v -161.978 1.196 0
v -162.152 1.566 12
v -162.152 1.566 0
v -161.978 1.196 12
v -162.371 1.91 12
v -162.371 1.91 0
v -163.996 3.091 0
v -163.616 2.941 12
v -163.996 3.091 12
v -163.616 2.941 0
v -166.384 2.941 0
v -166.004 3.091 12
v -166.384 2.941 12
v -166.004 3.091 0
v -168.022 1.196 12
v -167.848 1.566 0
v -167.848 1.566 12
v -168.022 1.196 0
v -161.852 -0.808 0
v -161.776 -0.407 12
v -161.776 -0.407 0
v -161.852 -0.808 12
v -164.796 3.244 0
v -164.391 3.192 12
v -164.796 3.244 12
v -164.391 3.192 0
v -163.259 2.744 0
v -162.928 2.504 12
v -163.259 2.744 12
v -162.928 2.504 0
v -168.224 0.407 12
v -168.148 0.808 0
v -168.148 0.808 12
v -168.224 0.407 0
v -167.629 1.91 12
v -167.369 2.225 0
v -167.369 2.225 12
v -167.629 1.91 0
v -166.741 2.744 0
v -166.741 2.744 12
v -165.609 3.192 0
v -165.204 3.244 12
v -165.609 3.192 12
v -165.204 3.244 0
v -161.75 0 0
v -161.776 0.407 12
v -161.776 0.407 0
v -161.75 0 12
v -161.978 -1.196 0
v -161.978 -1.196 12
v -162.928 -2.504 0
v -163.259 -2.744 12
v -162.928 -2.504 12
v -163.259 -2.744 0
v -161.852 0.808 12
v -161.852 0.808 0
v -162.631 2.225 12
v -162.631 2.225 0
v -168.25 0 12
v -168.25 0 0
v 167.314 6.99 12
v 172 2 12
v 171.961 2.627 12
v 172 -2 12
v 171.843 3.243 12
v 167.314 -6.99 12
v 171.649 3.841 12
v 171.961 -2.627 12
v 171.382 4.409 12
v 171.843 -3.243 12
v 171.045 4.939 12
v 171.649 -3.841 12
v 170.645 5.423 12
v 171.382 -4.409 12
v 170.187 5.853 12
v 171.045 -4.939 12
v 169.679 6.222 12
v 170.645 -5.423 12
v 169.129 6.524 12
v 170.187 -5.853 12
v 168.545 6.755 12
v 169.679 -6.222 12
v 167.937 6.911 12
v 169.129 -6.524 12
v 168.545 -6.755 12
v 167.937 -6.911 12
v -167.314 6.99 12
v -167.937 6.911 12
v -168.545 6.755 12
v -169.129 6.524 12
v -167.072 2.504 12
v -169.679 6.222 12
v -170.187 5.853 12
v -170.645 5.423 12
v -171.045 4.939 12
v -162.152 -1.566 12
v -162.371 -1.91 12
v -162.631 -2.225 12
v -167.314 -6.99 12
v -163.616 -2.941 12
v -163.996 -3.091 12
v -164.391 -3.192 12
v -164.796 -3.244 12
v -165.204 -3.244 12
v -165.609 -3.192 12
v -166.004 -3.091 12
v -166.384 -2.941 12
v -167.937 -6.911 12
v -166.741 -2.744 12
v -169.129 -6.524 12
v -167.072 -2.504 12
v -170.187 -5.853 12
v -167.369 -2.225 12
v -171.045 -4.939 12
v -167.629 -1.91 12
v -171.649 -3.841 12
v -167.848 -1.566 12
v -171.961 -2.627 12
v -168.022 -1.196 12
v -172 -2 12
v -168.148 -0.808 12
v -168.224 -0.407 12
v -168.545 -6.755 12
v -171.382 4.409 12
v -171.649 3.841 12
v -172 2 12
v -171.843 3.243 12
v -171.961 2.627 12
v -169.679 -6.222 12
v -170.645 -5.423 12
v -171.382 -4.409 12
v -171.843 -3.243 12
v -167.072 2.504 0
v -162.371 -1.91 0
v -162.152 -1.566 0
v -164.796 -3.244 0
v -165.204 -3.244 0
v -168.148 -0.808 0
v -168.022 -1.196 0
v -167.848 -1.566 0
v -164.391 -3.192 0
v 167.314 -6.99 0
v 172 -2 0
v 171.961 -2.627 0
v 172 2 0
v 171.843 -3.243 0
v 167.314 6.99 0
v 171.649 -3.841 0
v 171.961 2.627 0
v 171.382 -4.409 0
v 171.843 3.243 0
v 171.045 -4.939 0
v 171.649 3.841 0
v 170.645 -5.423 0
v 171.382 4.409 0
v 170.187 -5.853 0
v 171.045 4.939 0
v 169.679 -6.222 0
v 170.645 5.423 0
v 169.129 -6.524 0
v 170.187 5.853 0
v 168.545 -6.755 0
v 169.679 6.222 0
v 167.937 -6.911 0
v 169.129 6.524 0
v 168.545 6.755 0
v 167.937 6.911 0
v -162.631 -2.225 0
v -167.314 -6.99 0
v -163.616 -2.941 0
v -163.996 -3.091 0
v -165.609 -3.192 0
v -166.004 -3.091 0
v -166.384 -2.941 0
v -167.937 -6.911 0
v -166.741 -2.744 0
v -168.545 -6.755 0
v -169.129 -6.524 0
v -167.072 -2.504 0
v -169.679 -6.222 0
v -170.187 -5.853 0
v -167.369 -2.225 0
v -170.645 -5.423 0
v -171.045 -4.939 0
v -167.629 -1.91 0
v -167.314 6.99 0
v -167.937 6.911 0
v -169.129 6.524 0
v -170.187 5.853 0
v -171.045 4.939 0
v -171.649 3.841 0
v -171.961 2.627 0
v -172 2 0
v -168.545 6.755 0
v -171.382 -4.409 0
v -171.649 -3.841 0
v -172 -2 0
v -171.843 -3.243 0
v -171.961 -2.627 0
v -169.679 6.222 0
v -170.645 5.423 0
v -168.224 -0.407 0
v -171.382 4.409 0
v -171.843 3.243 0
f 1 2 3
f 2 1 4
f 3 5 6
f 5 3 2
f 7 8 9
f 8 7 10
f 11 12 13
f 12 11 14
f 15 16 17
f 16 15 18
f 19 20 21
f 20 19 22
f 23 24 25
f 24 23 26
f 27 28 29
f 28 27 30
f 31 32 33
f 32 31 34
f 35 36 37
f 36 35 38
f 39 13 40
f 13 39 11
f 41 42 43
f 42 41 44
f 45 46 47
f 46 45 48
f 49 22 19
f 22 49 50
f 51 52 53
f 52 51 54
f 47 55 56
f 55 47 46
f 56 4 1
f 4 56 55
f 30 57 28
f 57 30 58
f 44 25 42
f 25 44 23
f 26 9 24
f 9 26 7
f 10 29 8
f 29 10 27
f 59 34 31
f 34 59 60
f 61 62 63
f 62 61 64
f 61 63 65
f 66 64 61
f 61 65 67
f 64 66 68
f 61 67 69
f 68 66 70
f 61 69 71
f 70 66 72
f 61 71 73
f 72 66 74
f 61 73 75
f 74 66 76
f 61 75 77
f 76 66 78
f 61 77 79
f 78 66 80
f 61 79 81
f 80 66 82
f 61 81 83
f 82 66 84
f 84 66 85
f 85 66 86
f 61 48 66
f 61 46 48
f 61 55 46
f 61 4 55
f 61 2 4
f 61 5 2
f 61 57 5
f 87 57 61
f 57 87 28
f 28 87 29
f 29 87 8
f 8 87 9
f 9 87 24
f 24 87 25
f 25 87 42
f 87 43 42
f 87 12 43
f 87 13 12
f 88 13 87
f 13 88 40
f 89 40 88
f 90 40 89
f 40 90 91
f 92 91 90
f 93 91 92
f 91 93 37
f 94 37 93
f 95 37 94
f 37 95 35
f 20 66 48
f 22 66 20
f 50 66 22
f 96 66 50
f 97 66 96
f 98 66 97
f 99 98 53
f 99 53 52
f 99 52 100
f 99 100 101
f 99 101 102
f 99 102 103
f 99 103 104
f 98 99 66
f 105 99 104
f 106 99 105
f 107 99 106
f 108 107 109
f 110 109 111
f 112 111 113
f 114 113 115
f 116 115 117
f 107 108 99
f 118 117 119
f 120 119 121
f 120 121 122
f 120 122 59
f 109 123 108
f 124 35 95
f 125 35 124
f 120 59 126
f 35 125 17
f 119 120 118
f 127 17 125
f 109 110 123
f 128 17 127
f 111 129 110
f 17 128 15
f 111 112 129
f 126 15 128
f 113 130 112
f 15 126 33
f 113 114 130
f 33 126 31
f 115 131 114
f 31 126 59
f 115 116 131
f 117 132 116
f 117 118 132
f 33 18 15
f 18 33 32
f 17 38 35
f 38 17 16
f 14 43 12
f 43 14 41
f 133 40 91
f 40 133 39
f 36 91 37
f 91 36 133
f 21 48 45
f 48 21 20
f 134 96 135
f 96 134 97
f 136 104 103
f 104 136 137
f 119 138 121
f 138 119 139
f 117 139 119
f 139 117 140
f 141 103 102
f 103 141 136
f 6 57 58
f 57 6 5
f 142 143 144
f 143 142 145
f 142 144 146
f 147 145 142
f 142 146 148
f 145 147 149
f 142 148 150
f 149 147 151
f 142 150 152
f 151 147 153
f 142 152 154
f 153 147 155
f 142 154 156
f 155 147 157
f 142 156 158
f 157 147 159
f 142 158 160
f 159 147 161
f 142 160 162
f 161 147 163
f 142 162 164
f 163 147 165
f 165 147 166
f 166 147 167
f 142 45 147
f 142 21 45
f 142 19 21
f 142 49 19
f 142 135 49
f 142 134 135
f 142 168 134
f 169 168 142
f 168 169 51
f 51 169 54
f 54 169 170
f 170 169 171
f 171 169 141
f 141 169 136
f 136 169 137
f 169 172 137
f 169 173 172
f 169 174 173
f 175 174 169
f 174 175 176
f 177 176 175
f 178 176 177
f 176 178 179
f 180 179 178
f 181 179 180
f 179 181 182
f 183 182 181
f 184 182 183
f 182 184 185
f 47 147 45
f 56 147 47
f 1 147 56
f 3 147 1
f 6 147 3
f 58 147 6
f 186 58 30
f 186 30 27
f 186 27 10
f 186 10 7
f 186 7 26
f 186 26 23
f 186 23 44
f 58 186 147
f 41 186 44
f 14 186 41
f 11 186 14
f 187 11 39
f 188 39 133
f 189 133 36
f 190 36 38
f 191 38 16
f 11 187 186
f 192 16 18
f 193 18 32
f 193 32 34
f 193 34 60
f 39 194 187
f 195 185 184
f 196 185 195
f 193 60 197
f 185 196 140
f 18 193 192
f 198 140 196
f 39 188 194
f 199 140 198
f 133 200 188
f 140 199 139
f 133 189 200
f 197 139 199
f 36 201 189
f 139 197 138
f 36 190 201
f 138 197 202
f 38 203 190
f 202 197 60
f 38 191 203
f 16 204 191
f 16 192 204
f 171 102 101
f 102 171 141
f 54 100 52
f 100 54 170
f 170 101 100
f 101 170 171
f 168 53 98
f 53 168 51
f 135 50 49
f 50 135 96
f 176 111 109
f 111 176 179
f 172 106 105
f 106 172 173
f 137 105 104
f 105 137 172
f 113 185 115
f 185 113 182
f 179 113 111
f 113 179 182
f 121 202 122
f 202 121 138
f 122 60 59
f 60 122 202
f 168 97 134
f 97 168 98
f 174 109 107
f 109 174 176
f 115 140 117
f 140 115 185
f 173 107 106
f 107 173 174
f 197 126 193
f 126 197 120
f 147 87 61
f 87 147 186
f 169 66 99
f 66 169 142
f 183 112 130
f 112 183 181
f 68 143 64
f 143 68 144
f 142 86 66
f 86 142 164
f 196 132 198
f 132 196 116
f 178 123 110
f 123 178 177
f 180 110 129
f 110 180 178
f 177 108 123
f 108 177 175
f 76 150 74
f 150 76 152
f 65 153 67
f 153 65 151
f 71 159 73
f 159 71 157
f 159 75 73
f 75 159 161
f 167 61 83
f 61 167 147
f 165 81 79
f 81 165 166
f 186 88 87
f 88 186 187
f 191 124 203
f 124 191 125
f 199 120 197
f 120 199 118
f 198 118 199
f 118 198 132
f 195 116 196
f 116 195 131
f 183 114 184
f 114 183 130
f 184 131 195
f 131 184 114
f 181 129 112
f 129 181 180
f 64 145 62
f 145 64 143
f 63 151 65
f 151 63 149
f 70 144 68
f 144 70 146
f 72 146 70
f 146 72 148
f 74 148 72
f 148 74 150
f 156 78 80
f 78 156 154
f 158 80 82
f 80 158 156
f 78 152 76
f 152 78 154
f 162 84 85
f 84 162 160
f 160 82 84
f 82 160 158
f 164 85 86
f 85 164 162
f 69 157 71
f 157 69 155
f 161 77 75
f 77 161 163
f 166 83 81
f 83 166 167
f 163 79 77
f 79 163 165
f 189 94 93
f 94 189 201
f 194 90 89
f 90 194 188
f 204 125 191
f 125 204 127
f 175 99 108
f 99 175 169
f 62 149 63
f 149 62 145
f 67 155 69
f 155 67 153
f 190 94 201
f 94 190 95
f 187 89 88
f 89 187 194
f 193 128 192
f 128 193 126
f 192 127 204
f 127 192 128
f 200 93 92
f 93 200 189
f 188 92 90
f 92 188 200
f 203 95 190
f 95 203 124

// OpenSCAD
$fn = 50;


difference() {
	union() {
		hull() {
			translate(v = [-167.0000000000, 2.0000000000, 0]) {
				cylinder(h = 12, r = 5);
			}
			translate(v = [167.0000000000, 2.0000000000, 0]) {
				cylinder(h = 12, r = 5);
			}
			translate(v = [-167.0000000000, -2.0000000000, 0]) {
				cylinder(h = 12, r = 5);
			}
			translate(v = [167.0000000000, -2.0000000000, 0]) {
				cylinder(h = 12, r = 5);
			}
		}
	}
	union() {
		translate(v = [-165.0000000000, 0.0000000000, 0]) {
			cylinder(h = 12, r = 3.2500000000);
		}
		translate(v = [-165.0000000000, 0.0000000000, 0]) {
			cylinder(h = 12, r = 1.8000000000);
		}
		translate(v = [-165.0000000000, 0.0000000000, 0]) {
			cylinder(h = 12, r = 1.8000000000);
		}
		translate(v = [-165.0000000000, 0.0000000000, 0]) {
			cylinder(h = 12, r = 1.8000000000);
		}
	}
}
